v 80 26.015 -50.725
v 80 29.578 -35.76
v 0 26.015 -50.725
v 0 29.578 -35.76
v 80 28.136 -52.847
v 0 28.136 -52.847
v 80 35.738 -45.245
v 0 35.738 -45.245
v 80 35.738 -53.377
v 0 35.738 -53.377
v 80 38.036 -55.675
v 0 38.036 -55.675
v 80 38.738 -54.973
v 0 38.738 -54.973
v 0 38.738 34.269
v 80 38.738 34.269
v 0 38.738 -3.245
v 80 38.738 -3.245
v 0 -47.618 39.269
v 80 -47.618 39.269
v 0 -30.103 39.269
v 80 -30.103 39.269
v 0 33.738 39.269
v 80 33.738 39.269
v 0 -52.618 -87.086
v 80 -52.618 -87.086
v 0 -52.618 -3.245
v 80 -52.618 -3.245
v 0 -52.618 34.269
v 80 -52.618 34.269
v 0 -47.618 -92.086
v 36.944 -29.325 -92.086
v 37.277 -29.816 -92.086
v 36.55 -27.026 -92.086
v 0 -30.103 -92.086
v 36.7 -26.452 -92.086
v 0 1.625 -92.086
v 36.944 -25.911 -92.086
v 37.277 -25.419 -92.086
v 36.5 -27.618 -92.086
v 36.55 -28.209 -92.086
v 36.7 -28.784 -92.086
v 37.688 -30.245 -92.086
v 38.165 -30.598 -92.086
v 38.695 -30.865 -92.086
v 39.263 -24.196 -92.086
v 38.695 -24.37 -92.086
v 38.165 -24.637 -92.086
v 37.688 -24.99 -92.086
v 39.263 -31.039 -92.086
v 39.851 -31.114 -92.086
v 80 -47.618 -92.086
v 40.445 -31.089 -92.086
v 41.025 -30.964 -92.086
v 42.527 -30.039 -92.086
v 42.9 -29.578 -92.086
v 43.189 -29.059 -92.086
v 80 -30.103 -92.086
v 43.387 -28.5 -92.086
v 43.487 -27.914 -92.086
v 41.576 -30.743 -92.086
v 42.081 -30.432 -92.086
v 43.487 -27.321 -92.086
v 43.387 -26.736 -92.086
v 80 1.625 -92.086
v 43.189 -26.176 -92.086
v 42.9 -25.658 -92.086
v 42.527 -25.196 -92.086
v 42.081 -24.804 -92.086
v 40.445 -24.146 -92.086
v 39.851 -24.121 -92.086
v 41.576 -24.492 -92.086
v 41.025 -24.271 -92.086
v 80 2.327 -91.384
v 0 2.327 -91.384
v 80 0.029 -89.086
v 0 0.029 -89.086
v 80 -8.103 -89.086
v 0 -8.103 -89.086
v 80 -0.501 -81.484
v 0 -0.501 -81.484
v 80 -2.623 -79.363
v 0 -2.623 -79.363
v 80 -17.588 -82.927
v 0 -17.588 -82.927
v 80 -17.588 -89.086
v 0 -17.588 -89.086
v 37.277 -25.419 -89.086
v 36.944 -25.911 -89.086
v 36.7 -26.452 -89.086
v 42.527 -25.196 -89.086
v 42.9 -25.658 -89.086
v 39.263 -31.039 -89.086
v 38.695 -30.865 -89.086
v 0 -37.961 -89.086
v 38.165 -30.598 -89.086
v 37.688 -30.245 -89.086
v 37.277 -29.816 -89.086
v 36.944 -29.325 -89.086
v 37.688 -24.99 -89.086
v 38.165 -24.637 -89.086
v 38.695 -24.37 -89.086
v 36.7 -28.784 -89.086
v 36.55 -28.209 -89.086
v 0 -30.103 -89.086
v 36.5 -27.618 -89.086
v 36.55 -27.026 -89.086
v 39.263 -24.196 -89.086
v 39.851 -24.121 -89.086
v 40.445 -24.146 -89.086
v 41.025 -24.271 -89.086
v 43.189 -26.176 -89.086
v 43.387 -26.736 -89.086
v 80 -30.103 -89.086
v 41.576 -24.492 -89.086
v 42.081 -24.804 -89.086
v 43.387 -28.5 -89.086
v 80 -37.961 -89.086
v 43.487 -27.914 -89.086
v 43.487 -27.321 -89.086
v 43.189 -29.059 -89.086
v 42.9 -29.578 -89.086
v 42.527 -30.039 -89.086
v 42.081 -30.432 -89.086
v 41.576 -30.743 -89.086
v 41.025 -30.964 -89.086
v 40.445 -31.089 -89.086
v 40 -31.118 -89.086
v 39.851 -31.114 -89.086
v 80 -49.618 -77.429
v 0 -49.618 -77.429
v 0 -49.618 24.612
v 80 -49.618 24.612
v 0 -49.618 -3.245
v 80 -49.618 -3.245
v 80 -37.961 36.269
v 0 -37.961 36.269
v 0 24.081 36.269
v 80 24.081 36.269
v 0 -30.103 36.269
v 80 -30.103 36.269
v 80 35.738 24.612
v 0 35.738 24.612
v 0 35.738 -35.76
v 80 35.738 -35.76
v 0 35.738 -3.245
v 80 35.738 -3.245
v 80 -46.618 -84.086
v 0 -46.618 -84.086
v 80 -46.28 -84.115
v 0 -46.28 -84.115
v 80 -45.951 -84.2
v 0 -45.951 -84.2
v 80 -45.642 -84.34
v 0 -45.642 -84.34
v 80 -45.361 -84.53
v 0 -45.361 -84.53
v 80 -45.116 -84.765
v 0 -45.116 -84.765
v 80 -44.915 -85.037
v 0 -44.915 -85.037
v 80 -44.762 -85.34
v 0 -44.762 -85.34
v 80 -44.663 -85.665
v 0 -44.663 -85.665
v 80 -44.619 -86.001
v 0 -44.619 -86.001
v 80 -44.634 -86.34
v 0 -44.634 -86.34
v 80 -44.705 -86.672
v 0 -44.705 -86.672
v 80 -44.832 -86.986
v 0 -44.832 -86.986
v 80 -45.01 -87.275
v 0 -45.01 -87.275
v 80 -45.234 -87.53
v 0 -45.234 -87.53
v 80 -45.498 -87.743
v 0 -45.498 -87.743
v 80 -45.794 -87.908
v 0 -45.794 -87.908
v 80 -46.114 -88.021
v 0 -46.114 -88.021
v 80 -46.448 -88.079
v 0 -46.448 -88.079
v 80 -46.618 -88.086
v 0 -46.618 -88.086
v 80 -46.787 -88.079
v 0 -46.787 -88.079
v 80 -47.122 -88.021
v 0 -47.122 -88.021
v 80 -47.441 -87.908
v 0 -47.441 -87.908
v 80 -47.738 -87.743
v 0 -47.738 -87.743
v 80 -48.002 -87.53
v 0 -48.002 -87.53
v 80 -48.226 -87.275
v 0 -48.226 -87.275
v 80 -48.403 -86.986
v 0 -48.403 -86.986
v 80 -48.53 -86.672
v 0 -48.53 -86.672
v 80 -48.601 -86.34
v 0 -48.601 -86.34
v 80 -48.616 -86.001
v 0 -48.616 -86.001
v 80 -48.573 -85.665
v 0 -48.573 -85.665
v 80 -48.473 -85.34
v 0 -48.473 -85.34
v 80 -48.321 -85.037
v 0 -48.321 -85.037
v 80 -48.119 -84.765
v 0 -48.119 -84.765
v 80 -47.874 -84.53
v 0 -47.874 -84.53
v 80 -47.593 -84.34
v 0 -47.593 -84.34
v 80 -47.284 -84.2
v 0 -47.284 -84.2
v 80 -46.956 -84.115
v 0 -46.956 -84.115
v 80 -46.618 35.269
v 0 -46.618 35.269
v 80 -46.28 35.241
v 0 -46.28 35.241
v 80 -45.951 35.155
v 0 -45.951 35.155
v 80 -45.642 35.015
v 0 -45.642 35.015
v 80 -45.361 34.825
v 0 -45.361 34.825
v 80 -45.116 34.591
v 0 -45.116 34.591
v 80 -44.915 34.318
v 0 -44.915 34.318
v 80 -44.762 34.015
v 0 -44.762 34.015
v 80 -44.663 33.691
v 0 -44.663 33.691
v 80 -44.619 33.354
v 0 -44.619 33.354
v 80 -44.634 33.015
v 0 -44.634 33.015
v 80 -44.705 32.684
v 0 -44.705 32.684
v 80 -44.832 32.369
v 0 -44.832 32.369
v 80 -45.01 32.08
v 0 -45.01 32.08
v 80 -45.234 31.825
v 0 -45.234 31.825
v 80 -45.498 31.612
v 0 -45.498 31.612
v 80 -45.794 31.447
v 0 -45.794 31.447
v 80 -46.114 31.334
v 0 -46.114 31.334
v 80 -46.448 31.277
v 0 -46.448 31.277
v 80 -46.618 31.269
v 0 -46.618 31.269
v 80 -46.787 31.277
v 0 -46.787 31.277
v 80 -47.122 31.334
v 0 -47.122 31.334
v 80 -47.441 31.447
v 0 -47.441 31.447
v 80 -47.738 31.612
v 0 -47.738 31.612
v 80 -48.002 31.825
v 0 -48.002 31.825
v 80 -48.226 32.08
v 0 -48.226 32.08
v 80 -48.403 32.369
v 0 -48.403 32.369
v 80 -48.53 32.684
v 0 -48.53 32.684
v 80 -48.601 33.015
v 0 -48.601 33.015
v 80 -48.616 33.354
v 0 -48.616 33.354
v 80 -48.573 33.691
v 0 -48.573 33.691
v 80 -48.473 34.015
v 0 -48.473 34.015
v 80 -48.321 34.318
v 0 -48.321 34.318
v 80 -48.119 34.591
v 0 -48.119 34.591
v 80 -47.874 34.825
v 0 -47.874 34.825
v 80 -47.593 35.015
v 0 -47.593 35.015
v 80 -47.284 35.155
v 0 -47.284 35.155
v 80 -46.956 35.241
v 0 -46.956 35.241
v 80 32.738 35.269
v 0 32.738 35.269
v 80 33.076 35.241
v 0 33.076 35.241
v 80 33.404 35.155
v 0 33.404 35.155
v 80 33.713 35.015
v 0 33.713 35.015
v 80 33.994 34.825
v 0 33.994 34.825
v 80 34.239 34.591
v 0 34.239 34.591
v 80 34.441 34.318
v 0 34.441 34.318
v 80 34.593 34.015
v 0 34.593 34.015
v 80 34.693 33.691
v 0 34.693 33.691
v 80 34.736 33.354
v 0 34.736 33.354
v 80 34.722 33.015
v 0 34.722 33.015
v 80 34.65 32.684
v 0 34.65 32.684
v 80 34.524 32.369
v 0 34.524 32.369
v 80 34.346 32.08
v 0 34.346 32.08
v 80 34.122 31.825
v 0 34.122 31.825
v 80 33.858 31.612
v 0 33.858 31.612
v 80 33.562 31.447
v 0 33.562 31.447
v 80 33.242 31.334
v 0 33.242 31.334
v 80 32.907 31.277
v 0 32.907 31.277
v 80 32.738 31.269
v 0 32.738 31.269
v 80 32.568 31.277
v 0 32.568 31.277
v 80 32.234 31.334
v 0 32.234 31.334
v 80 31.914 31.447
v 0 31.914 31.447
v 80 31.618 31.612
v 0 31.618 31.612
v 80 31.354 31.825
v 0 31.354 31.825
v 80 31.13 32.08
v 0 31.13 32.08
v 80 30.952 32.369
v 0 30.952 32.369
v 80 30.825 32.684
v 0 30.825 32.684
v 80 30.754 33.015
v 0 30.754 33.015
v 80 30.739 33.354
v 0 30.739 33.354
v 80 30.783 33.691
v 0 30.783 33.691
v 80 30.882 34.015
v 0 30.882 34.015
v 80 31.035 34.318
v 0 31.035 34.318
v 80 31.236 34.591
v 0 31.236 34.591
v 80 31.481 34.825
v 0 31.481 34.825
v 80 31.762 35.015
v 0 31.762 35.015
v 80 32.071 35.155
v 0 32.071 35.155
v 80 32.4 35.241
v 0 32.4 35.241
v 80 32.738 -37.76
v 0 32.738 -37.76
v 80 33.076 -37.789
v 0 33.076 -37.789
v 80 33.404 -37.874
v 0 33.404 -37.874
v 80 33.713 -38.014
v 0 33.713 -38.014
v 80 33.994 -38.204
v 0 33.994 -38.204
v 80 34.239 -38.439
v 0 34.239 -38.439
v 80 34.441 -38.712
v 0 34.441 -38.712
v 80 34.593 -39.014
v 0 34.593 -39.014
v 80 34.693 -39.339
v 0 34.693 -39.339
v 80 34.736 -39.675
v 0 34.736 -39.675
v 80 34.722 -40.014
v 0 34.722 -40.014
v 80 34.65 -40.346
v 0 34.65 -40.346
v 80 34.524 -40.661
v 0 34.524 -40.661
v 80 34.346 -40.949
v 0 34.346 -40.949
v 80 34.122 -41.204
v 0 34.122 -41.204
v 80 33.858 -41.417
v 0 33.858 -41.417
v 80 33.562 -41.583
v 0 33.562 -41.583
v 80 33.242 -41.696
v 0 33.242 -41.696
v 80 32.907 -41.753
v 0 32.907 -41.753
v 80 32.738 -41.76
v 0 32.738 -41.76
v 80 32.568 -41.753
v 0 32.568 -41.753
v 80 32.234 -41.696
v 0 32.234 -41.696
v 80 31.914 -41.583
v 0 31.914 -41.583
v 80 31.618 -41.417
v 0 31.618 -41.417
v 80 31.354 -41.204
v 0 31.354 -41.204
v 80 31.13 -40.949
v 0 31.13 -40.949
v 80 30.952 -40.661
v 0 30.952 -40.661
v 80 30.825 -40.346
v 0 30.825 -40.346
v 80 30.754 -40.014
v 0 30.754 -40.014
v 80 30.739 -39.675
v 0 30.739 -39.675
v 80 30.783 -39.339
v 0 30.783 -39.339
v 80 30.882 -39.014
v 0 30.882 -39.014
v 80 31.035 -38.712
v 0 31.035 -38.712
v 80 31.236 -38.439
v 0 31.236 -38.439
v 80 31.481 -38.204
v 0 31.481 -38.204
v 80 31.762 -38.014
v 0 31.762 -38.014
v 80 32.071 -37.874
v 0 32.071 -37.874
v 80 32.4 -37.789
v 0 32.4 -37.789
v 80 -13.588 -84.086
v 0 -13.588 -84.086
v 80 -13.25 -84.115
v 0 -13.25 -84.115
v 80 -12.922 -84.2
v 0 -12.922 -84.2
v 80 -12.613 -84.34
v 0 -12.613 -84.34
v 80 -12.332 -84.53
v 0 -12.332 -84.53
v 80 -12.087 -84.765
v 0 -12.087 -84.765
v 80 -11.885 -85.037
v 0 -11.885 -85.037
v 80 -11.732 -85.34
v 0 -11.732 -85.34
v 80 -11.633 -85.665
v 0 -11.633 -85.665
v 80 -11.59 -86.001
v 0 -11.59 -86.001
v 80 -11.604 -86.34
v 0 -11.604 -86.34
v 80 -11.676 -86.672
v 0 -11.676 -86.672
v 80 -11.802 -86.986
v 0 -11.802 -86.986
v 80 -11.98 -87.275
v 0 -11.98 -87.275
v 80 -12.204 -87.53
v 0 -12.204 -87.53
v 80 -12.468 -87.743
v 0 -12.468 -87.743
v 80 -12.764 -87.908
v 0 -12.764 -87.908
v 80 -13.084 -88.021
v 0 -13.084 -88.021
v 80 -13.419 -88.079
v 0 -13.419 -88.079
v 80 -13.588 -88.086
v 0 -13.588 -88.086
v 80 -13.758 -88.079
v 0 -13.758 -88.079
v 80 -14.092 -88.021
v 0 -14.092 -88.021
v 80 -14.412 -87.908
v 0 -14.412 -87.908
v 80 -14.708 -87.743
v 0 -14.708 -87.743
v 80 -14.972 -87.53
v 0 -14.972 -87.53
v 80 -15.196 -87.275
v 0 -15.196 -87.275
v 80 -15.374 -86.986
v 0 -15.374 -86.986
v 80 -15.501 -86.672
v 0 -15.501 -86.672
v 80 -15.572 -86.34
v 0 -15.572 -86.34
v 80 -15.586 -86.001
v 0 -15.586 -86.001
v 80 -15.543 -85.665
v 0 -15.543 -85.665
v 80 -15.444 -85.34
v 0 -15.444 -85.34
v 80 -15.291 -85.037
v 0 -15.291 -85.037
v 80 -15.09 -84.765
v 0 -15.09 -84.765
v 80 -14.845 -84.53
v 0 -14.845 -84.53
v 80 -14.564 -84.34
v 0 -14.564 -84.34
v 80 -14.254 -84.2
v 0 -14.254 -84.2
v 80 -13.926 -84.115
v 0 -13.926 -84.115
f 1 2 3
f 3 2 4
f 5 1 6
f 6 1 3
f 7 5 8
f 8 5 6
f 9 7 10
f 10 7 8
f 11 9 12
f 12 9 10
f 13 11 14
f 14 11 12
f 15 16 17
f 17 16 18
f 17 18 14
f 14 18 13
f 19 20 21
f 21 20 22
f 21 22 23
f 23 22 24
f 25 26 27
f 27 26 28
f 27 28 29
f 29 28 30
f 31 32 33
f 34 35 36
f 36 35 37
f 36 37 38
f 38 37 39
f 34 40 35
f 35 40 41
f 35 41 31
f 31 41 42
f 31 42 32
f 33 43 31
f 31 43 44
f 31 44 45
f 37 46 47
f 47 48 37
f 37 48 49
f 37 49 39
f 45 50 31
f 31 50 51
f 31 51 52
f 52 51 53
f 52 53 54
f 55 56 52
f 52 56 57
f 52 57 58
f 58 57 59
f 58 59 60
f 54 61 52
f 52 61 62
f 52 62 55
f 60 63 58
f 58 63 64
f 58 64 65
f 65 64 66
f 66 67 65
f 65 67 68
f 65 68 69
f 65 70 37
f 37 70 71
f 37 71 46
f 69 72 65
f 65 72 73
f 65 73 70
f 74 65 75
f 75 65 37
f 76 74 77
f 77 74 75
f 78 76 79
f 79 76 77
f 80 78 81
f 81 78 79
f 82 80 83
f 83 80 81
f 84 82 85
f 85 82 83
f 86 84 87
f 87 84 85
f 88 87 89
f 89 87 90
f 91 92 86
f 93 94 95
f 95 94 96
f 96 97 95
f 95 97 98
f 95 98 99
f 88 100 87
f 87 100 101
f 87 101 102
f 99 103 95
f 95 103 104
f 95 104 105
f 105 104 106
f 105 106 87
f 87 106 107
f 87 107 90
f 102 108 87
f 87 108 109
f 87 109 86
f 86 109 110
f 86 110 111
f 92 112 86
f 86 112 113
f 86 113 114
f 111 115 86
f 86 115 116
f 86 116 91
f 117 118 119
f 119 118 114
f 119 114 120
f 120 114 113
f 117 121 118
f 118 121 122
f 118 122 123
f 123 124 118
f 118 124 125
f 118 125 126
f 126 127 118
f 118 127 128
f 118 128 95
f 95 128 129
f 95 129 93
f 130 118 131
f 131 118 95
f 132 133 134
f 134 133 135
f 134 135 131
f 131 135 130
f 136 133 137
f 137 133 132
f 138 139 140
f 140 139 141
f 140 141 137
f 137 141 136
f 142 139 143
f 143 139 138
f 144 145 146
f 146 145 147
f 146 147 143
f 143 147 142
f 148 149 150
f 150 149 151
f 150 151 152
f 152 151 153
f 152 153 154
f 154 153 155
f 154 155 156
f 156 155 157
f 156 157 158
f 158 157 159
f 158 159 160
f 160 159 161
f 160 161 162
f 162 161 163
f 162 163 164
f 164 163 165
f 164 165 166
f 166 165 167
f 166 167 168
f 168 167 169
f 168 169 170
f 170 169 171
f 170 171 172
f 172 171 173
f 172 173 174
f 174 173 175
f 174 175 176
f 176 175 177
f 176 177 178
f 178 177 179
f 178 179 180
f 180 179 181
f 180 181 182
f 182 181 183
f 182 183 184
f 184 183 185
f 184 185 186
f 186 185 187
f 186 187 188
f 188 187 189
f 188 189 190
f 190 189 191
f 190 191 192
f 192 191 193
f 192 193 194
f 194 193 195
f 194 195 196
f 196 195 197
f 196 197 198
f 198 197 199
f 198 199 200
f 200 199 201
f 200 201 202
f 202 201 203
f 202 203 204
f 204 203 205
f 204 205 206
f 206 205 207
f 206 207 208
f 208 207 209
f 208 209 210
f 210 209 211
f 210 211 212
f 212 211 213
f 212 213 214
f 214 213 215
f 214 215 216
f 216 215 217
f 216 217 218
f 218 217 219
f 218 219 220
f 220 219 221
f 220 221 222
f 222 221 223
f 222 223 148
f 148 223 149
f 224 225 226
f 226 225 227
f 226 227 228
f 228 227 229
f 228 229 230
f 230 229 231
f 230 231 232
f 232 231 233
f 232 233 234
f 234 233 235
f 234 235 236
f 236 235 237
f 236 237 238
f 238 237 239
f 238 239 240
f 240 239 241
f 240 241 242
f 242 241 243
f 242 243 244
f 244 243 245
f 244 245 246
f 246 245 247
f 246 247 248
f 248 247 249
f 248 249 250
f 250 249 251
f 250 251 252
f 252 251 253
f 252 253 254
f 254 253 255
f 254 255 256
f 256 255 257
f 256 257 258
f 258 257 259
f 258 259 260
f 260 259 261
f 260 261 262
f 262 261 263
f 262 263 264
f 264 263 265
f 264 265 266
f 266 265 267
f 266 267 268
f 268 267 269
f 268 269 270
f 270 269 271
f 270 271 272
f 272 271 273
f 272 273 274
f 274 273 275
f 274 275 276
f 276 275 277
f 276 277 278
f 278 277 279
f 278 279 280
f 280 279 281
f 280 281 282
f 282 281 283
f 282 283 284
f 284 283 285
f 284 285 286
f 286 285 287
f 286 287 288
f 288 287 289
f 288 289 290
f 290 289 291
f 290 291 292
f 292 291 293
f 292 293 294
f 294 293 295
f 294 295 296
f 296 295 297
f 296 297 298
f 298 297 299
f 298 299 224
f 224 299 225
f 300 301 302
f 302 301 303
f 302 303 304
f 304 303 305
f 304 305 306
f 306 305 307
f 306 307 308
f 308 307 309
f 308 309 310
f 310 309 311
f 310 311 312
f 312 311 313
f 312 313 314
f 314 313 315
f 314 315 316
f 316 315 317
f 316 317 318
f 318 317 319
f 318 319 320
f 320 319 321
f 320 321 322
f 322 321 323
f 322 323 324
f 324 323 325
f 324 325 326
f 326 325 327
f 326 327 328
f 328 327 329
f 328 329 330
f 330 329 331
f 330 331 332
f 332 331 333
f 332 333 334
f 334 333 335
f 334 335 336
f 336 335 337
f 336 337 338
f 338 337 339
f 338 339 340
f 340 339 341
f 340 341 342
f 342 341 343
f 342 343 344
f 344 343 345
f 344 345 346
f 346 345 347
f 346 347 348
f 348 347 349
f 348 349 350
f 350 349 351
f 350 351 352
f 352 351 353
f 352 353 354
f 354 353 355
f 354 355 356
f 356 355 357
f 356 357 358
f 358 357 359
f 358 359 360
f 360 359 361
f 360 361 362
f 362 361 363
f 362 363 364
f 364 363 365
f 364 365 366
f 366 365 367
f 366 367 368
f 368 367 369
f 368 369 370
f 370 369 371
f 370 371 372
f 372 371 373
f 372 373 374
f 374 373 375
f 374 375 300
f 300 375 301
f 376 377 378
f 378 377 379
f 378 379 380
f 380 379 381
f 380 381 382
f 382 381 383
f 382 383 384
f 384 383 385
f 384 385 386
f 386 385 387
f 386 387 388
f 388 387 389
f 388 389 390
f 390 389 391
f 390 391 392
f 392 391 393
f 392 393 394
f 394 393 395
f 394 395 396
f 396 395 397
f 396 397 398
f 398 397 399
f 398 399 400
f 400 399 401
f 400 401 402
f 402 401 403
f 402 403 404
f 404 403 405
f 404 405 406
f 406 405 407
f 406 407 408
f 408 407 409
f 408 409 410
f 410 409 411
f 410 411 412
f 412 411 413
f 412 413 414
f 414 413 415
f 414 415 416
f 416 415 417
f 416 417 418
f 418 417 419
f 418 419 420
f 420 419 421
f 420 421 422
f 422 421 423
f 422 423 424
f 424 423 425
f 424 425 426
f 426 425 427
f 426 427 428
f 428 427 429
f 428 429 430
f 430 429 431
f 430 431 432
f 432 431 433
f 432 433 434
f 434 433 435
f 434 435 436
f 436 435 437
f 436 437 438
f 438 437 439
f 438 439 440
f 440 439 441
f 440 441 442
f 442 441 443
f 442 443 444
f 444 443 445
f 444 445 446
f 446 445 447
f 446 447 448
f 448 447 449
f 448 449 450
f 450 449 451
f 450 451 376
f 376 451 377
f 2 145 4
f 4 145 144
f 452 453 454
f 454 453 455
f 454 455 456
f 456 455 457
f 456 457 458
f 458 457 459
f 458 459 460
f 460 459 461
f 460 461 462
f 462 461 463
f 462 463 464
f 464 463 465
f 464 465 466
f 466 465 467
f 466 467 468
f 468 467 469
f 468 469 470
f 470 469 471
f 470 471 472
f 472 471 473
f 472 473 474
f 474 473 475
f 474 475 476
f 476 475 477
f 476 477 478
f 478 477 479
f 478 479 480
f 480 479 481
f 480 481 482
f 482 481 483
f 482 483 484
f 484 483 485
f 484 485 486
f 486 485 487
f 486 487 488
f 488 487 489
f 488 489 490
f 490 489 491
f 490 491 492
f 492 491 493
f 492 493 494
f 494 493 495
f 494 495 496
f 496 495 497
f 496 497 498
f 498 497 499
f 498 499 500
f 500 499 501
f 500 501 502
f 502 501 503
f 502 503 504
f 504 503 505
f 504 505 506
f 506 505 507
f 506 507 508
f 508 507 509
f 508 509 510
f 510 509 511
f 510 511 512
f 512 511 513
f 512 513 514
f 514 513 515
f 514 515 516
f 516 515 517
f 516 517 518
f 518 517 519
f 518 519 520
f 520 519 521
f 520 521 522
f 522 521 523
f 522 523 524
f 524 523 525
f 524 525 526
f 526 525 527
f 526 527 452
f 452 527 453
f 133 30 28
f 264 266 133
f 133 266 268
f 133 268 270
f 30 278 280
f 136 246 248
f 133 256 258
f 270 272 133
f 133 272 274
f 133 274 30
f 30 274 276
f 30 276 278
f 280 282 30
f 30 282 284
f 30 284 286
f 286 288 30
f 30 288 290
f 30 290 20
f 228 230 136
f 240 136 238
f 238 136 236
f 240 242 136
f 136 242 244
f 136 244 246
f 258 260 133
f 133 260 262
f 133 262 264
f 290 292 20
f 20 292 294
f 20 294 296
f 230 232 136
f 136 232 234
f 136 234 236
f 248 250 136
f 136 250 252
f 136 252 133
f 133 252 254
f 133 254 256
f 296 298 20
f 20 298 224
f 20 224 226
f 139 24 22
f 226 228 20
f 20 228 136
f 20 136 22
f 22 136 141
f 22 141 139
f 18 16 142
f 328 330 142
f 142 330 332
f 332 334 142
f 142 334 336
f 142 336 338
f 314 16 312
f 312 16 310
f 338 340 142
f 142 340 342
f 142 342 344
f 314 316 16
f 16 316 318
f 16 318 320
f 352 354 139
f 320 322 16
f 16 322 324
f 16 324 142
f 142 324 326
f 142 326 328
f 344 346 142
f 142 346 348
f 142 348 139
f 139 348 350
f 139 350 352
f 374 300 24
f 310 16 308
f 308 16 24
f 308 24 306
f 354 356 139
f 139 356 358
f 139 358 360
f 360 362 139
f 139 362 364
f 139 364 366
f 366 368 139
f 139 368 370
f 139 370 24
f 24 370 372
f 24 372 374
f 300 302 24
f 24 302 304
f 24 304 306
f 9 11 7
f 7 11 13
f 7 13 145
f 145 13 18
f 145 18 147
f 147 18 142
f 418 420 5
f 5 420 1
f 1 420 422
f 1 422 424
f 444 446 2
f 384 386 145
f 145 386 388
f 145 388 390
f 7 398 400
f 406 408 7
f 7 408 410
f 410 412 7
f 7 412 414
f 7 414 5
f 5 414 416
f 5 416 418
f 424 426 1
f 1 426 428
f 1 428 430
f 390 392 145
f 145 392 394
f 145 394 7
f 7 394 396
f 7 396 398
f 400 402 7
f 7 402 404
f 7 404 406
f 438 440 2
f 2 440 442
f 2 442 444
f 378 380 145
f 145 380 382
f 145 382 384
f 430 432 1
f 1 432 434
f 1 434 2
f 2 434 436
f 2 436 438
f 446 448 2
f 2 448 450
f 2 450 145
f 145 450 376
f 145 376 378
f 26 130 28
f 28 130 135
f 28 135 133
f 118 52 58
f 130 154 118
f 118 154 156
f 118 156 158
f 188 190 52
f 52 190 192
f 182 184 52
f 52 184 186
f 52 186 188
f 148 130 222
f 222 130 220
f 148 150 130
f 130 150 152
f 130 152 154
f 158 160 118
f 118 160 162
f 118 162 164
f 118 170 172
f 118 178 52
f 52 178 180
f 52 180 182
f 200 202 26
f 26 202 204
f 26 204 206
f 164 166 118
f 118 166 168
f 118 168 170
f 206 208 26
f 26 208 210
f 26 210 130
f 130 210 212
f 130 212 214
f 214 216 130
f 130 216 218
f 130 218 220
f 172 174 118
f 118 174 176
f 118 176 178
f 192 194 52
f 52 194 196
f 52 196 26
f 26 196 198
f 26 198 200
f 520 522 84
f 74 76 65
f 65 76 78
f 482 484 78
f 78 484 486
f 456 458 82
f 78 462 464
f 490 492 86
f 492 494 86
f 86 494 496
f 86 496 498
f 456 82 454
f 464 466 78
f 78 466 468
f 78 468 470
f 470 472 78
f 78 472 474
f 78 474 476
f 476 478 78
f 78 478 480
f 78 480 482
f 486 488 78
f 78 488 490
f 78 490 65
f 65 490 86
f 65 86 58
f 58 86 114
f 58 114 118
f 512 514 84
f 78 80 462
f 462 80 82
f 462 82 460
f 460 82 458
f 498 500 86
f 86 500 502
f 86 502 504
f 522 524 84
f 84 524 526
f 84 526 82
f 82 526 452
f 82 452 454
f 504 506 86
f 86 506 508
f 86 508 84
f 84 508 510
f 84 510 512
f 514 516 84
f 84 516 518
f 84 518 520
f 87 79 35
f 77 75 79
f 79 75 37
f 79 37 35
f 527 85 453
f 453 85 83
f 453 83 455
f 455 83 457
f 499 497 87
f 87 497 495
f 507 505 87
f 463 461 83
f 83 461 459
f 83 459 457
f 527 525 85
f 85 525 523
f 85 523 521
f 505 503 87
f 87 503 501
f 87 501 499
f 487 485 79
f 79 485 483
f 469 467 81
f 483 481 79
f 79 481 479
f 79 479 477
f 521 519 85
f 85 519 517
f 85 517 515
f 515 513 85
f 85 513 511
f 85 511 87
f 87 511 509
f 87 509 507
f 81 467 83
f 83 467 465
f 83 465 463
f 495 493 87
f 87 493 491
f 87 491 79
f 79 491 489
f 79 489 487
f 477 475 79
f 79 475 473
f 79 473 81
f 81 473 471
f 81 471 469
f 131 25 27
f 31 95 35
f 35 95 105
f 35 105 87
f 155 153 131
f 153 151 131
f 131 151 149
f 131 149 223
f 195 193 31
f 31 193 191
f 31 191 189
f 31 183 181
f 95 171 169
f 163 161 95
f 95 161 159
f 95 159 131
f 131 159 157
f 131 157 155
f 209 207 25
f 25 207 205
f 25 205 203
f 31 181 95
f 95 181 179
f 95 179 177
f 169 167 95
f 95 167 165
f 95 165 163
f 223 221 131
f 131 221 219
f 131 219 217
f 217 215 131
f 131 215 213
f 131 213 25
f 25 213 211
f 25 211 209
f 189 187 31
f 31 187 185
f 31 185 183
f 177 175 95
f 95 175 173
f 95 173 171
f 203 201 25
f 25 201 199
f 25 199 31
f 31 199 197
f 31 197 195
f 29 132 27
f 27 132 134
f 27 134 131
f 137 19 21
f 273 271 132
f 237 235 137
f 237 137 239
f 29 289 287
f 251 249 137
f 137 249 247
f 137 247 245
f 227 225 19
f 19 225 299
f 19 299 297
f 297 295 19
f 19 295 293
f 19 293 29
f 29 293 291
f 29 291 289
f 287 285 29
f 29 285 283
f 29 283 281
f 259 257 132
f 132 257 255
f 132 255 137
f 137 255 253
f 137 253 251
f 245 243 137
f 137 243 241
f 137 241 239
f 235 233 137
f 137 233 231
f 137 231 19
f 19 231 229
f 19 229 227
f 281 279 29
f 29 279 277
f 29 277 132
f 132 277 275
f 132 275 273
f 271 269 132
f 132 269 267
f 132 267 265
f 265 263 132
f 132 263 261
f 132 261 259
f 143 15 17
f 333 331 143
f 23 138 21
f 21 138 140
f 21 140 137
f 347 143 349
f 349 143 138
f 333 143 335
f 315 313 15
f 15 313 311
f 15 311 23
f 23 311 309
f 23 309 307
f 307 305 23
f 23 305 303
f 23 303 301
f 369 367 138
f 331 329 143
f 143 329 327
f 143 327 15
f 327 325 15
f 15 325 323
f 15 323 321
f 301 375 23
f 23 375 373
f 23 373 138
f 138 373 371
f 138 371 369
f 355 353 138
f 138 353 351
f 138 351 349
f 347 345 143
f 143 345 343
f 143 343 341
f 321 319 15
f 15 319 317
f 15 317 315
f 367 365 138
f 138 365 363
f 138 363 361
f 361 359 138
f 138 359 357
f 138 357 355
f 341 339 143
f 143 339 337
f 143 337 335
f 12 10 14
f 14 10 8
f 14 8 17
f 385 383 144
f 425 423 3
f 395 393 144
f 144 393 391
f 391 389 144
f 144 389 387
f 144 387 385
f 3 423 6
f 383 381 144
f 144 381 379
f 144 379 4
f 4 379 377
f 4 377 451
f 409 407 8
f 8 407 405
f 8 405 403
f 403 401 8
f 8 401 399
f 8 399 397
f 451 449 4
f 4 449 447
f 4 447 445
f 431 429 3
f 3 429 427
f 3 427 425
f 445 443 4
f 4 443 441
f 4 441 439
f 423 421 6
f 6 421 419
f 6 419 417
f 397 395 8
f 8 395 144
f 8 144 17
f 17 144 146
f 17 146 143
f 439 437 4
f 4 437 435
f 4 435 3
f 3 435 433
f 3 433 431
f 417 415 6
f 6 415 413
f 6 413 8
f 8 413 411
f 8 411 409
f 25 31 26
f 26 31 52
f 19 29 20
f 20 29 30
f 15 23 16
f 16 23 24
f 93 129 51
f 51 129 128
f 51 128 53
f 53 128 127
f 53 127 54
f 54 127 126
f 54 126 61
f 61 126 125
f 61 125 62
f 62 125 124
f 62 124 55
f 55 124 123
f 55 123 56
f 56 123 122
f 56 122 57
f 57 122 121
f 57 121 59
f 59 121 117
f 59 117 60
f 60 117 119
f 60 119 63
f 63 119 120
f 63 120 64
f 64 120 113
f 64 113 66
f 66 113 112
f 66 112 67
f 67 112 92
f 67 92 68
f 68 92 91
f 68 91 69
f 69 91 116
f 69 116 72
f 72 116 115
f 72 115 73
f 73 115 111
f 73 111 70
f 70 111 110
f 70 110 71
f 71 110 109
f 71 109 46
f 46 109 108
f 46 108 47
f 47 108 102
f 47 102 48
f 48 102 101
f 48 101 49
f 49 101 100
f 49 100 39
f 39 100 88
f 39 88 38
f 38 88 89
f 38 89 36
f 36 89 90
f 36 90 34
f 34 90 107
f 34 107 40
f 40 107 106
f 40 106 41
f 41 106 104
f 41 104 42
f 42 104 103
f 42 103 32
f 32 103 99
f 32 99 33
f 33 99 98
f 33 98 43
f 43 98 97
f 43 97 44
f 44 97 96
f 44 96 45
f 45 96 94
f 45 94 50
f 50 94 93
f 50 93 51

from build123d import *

# Parameters (mm, degrees)
SKETCH2_R           = 2
BOSS_EXTRUDE2_DEPTH = 80
CHAMFER2_SIZE       = 5
CUT_EXTRUDE1_REACH  = 133.355
SKETCH3_R           = 3.5


with BuildPart() as part:
    # Sketch2 → Boss-Extrude2 (new body)
    with BuildSketch(Plane(origin=(0, 0, 0), x_dir=(0, 0, -1), z_dir=(1, 0, 0))):
        Polygon((89.086021447, -37.960779863), (77.429167198, -49.617634112), (-24.612463363, -49.617634112), (-36.269317612, -37.960779863), (-36.269317612, 24.080850698), (-24.612463363, 35.737704947), (35.760119639, 35.737704947), (35.760119639, 29.578296595), (50.725478568, 26.014986706), (52.846798911, 28.136307049), (45.245401014, 35.737704947), (53.377128997, 35.737704947), (55.675226036, 38.035801986), (54.973323075, 38.737704947), (-39.269317612, 38.737704947), (-39.269317612, -52.617634112), (92.086021447, -52.617634112), (92.086021447, 1.625006575), (91.384118486, 2.326909536), (89.086021447, 0.028812497), (89.086021447, -8.102915487), (81.484279552, -0.501173592), (79.362959209, -2.622493935), (79.363303206, -2.622837932), (82.926613095, -17.588196861), (89.086021447, -17.588196861), align=None)
        with Locations((86.086021447, -46.617634112)):
            Circle(SKETCH2_R, mode=Mode.SUBTRACT)
        with Locations((-33.269317612, -46.617634112)):
            Circle(SKETCH2_R, mode=Mode.SUBTRACT)
        with Locations((86.086021447, -13.588196861)):
            Circle(SKETCH2_R, mode=Mode.SUBTRACT)
        with Locations((-33.269317612, 32.737704947)):
            Circle(SKETCH2_R, mode=Mode.SUBTRACT)
        with Locations((39.760119639, 32.737704947)):
            Circle(SKETCH2_R, mode=Mode.SUBTRACT)
    extrude(amount=BOSS_EXTRUDE2_DEPTH)

    # Chamfer2
    chamfer2_edges = [part.edges().sort_by_distance(p)[0] for p in [
        (40, -52.617634112, -92.086021447),
        (40, -52.617634112, 39.269317612),
        (40, 38.737704947, 39.269317612),
    ]]
    chamfer(chamfer2_edges, length=CHAMFER2_SIZE)

    # Sketch3 → Cut-Extrude1 (cut, up to next)
    with BuildSketch(Plane(origin=(0, 0, -92.086021447), x_dir=(-1, 0, 0), z_dir=(0, 0, -1)), mode=Mode.PRIVATE) as cut_extrude1_sk1:
        with Locations((-40, -27.617634112)):
            Circle(SKETCH3_R)
    cut_extrude1_tool1 = extrude(cut_extrude1_sk1.sketch, amount=-CUT_EXTRUDE1_REACH, mode=Mode.PRIVATE) & part.part
    add(cut_extrude1_tool1.solids().sort_by_distance((40, -27.617634, -92.086021))[0], mode=Mode.SUBTRACT)


solid = part.part
